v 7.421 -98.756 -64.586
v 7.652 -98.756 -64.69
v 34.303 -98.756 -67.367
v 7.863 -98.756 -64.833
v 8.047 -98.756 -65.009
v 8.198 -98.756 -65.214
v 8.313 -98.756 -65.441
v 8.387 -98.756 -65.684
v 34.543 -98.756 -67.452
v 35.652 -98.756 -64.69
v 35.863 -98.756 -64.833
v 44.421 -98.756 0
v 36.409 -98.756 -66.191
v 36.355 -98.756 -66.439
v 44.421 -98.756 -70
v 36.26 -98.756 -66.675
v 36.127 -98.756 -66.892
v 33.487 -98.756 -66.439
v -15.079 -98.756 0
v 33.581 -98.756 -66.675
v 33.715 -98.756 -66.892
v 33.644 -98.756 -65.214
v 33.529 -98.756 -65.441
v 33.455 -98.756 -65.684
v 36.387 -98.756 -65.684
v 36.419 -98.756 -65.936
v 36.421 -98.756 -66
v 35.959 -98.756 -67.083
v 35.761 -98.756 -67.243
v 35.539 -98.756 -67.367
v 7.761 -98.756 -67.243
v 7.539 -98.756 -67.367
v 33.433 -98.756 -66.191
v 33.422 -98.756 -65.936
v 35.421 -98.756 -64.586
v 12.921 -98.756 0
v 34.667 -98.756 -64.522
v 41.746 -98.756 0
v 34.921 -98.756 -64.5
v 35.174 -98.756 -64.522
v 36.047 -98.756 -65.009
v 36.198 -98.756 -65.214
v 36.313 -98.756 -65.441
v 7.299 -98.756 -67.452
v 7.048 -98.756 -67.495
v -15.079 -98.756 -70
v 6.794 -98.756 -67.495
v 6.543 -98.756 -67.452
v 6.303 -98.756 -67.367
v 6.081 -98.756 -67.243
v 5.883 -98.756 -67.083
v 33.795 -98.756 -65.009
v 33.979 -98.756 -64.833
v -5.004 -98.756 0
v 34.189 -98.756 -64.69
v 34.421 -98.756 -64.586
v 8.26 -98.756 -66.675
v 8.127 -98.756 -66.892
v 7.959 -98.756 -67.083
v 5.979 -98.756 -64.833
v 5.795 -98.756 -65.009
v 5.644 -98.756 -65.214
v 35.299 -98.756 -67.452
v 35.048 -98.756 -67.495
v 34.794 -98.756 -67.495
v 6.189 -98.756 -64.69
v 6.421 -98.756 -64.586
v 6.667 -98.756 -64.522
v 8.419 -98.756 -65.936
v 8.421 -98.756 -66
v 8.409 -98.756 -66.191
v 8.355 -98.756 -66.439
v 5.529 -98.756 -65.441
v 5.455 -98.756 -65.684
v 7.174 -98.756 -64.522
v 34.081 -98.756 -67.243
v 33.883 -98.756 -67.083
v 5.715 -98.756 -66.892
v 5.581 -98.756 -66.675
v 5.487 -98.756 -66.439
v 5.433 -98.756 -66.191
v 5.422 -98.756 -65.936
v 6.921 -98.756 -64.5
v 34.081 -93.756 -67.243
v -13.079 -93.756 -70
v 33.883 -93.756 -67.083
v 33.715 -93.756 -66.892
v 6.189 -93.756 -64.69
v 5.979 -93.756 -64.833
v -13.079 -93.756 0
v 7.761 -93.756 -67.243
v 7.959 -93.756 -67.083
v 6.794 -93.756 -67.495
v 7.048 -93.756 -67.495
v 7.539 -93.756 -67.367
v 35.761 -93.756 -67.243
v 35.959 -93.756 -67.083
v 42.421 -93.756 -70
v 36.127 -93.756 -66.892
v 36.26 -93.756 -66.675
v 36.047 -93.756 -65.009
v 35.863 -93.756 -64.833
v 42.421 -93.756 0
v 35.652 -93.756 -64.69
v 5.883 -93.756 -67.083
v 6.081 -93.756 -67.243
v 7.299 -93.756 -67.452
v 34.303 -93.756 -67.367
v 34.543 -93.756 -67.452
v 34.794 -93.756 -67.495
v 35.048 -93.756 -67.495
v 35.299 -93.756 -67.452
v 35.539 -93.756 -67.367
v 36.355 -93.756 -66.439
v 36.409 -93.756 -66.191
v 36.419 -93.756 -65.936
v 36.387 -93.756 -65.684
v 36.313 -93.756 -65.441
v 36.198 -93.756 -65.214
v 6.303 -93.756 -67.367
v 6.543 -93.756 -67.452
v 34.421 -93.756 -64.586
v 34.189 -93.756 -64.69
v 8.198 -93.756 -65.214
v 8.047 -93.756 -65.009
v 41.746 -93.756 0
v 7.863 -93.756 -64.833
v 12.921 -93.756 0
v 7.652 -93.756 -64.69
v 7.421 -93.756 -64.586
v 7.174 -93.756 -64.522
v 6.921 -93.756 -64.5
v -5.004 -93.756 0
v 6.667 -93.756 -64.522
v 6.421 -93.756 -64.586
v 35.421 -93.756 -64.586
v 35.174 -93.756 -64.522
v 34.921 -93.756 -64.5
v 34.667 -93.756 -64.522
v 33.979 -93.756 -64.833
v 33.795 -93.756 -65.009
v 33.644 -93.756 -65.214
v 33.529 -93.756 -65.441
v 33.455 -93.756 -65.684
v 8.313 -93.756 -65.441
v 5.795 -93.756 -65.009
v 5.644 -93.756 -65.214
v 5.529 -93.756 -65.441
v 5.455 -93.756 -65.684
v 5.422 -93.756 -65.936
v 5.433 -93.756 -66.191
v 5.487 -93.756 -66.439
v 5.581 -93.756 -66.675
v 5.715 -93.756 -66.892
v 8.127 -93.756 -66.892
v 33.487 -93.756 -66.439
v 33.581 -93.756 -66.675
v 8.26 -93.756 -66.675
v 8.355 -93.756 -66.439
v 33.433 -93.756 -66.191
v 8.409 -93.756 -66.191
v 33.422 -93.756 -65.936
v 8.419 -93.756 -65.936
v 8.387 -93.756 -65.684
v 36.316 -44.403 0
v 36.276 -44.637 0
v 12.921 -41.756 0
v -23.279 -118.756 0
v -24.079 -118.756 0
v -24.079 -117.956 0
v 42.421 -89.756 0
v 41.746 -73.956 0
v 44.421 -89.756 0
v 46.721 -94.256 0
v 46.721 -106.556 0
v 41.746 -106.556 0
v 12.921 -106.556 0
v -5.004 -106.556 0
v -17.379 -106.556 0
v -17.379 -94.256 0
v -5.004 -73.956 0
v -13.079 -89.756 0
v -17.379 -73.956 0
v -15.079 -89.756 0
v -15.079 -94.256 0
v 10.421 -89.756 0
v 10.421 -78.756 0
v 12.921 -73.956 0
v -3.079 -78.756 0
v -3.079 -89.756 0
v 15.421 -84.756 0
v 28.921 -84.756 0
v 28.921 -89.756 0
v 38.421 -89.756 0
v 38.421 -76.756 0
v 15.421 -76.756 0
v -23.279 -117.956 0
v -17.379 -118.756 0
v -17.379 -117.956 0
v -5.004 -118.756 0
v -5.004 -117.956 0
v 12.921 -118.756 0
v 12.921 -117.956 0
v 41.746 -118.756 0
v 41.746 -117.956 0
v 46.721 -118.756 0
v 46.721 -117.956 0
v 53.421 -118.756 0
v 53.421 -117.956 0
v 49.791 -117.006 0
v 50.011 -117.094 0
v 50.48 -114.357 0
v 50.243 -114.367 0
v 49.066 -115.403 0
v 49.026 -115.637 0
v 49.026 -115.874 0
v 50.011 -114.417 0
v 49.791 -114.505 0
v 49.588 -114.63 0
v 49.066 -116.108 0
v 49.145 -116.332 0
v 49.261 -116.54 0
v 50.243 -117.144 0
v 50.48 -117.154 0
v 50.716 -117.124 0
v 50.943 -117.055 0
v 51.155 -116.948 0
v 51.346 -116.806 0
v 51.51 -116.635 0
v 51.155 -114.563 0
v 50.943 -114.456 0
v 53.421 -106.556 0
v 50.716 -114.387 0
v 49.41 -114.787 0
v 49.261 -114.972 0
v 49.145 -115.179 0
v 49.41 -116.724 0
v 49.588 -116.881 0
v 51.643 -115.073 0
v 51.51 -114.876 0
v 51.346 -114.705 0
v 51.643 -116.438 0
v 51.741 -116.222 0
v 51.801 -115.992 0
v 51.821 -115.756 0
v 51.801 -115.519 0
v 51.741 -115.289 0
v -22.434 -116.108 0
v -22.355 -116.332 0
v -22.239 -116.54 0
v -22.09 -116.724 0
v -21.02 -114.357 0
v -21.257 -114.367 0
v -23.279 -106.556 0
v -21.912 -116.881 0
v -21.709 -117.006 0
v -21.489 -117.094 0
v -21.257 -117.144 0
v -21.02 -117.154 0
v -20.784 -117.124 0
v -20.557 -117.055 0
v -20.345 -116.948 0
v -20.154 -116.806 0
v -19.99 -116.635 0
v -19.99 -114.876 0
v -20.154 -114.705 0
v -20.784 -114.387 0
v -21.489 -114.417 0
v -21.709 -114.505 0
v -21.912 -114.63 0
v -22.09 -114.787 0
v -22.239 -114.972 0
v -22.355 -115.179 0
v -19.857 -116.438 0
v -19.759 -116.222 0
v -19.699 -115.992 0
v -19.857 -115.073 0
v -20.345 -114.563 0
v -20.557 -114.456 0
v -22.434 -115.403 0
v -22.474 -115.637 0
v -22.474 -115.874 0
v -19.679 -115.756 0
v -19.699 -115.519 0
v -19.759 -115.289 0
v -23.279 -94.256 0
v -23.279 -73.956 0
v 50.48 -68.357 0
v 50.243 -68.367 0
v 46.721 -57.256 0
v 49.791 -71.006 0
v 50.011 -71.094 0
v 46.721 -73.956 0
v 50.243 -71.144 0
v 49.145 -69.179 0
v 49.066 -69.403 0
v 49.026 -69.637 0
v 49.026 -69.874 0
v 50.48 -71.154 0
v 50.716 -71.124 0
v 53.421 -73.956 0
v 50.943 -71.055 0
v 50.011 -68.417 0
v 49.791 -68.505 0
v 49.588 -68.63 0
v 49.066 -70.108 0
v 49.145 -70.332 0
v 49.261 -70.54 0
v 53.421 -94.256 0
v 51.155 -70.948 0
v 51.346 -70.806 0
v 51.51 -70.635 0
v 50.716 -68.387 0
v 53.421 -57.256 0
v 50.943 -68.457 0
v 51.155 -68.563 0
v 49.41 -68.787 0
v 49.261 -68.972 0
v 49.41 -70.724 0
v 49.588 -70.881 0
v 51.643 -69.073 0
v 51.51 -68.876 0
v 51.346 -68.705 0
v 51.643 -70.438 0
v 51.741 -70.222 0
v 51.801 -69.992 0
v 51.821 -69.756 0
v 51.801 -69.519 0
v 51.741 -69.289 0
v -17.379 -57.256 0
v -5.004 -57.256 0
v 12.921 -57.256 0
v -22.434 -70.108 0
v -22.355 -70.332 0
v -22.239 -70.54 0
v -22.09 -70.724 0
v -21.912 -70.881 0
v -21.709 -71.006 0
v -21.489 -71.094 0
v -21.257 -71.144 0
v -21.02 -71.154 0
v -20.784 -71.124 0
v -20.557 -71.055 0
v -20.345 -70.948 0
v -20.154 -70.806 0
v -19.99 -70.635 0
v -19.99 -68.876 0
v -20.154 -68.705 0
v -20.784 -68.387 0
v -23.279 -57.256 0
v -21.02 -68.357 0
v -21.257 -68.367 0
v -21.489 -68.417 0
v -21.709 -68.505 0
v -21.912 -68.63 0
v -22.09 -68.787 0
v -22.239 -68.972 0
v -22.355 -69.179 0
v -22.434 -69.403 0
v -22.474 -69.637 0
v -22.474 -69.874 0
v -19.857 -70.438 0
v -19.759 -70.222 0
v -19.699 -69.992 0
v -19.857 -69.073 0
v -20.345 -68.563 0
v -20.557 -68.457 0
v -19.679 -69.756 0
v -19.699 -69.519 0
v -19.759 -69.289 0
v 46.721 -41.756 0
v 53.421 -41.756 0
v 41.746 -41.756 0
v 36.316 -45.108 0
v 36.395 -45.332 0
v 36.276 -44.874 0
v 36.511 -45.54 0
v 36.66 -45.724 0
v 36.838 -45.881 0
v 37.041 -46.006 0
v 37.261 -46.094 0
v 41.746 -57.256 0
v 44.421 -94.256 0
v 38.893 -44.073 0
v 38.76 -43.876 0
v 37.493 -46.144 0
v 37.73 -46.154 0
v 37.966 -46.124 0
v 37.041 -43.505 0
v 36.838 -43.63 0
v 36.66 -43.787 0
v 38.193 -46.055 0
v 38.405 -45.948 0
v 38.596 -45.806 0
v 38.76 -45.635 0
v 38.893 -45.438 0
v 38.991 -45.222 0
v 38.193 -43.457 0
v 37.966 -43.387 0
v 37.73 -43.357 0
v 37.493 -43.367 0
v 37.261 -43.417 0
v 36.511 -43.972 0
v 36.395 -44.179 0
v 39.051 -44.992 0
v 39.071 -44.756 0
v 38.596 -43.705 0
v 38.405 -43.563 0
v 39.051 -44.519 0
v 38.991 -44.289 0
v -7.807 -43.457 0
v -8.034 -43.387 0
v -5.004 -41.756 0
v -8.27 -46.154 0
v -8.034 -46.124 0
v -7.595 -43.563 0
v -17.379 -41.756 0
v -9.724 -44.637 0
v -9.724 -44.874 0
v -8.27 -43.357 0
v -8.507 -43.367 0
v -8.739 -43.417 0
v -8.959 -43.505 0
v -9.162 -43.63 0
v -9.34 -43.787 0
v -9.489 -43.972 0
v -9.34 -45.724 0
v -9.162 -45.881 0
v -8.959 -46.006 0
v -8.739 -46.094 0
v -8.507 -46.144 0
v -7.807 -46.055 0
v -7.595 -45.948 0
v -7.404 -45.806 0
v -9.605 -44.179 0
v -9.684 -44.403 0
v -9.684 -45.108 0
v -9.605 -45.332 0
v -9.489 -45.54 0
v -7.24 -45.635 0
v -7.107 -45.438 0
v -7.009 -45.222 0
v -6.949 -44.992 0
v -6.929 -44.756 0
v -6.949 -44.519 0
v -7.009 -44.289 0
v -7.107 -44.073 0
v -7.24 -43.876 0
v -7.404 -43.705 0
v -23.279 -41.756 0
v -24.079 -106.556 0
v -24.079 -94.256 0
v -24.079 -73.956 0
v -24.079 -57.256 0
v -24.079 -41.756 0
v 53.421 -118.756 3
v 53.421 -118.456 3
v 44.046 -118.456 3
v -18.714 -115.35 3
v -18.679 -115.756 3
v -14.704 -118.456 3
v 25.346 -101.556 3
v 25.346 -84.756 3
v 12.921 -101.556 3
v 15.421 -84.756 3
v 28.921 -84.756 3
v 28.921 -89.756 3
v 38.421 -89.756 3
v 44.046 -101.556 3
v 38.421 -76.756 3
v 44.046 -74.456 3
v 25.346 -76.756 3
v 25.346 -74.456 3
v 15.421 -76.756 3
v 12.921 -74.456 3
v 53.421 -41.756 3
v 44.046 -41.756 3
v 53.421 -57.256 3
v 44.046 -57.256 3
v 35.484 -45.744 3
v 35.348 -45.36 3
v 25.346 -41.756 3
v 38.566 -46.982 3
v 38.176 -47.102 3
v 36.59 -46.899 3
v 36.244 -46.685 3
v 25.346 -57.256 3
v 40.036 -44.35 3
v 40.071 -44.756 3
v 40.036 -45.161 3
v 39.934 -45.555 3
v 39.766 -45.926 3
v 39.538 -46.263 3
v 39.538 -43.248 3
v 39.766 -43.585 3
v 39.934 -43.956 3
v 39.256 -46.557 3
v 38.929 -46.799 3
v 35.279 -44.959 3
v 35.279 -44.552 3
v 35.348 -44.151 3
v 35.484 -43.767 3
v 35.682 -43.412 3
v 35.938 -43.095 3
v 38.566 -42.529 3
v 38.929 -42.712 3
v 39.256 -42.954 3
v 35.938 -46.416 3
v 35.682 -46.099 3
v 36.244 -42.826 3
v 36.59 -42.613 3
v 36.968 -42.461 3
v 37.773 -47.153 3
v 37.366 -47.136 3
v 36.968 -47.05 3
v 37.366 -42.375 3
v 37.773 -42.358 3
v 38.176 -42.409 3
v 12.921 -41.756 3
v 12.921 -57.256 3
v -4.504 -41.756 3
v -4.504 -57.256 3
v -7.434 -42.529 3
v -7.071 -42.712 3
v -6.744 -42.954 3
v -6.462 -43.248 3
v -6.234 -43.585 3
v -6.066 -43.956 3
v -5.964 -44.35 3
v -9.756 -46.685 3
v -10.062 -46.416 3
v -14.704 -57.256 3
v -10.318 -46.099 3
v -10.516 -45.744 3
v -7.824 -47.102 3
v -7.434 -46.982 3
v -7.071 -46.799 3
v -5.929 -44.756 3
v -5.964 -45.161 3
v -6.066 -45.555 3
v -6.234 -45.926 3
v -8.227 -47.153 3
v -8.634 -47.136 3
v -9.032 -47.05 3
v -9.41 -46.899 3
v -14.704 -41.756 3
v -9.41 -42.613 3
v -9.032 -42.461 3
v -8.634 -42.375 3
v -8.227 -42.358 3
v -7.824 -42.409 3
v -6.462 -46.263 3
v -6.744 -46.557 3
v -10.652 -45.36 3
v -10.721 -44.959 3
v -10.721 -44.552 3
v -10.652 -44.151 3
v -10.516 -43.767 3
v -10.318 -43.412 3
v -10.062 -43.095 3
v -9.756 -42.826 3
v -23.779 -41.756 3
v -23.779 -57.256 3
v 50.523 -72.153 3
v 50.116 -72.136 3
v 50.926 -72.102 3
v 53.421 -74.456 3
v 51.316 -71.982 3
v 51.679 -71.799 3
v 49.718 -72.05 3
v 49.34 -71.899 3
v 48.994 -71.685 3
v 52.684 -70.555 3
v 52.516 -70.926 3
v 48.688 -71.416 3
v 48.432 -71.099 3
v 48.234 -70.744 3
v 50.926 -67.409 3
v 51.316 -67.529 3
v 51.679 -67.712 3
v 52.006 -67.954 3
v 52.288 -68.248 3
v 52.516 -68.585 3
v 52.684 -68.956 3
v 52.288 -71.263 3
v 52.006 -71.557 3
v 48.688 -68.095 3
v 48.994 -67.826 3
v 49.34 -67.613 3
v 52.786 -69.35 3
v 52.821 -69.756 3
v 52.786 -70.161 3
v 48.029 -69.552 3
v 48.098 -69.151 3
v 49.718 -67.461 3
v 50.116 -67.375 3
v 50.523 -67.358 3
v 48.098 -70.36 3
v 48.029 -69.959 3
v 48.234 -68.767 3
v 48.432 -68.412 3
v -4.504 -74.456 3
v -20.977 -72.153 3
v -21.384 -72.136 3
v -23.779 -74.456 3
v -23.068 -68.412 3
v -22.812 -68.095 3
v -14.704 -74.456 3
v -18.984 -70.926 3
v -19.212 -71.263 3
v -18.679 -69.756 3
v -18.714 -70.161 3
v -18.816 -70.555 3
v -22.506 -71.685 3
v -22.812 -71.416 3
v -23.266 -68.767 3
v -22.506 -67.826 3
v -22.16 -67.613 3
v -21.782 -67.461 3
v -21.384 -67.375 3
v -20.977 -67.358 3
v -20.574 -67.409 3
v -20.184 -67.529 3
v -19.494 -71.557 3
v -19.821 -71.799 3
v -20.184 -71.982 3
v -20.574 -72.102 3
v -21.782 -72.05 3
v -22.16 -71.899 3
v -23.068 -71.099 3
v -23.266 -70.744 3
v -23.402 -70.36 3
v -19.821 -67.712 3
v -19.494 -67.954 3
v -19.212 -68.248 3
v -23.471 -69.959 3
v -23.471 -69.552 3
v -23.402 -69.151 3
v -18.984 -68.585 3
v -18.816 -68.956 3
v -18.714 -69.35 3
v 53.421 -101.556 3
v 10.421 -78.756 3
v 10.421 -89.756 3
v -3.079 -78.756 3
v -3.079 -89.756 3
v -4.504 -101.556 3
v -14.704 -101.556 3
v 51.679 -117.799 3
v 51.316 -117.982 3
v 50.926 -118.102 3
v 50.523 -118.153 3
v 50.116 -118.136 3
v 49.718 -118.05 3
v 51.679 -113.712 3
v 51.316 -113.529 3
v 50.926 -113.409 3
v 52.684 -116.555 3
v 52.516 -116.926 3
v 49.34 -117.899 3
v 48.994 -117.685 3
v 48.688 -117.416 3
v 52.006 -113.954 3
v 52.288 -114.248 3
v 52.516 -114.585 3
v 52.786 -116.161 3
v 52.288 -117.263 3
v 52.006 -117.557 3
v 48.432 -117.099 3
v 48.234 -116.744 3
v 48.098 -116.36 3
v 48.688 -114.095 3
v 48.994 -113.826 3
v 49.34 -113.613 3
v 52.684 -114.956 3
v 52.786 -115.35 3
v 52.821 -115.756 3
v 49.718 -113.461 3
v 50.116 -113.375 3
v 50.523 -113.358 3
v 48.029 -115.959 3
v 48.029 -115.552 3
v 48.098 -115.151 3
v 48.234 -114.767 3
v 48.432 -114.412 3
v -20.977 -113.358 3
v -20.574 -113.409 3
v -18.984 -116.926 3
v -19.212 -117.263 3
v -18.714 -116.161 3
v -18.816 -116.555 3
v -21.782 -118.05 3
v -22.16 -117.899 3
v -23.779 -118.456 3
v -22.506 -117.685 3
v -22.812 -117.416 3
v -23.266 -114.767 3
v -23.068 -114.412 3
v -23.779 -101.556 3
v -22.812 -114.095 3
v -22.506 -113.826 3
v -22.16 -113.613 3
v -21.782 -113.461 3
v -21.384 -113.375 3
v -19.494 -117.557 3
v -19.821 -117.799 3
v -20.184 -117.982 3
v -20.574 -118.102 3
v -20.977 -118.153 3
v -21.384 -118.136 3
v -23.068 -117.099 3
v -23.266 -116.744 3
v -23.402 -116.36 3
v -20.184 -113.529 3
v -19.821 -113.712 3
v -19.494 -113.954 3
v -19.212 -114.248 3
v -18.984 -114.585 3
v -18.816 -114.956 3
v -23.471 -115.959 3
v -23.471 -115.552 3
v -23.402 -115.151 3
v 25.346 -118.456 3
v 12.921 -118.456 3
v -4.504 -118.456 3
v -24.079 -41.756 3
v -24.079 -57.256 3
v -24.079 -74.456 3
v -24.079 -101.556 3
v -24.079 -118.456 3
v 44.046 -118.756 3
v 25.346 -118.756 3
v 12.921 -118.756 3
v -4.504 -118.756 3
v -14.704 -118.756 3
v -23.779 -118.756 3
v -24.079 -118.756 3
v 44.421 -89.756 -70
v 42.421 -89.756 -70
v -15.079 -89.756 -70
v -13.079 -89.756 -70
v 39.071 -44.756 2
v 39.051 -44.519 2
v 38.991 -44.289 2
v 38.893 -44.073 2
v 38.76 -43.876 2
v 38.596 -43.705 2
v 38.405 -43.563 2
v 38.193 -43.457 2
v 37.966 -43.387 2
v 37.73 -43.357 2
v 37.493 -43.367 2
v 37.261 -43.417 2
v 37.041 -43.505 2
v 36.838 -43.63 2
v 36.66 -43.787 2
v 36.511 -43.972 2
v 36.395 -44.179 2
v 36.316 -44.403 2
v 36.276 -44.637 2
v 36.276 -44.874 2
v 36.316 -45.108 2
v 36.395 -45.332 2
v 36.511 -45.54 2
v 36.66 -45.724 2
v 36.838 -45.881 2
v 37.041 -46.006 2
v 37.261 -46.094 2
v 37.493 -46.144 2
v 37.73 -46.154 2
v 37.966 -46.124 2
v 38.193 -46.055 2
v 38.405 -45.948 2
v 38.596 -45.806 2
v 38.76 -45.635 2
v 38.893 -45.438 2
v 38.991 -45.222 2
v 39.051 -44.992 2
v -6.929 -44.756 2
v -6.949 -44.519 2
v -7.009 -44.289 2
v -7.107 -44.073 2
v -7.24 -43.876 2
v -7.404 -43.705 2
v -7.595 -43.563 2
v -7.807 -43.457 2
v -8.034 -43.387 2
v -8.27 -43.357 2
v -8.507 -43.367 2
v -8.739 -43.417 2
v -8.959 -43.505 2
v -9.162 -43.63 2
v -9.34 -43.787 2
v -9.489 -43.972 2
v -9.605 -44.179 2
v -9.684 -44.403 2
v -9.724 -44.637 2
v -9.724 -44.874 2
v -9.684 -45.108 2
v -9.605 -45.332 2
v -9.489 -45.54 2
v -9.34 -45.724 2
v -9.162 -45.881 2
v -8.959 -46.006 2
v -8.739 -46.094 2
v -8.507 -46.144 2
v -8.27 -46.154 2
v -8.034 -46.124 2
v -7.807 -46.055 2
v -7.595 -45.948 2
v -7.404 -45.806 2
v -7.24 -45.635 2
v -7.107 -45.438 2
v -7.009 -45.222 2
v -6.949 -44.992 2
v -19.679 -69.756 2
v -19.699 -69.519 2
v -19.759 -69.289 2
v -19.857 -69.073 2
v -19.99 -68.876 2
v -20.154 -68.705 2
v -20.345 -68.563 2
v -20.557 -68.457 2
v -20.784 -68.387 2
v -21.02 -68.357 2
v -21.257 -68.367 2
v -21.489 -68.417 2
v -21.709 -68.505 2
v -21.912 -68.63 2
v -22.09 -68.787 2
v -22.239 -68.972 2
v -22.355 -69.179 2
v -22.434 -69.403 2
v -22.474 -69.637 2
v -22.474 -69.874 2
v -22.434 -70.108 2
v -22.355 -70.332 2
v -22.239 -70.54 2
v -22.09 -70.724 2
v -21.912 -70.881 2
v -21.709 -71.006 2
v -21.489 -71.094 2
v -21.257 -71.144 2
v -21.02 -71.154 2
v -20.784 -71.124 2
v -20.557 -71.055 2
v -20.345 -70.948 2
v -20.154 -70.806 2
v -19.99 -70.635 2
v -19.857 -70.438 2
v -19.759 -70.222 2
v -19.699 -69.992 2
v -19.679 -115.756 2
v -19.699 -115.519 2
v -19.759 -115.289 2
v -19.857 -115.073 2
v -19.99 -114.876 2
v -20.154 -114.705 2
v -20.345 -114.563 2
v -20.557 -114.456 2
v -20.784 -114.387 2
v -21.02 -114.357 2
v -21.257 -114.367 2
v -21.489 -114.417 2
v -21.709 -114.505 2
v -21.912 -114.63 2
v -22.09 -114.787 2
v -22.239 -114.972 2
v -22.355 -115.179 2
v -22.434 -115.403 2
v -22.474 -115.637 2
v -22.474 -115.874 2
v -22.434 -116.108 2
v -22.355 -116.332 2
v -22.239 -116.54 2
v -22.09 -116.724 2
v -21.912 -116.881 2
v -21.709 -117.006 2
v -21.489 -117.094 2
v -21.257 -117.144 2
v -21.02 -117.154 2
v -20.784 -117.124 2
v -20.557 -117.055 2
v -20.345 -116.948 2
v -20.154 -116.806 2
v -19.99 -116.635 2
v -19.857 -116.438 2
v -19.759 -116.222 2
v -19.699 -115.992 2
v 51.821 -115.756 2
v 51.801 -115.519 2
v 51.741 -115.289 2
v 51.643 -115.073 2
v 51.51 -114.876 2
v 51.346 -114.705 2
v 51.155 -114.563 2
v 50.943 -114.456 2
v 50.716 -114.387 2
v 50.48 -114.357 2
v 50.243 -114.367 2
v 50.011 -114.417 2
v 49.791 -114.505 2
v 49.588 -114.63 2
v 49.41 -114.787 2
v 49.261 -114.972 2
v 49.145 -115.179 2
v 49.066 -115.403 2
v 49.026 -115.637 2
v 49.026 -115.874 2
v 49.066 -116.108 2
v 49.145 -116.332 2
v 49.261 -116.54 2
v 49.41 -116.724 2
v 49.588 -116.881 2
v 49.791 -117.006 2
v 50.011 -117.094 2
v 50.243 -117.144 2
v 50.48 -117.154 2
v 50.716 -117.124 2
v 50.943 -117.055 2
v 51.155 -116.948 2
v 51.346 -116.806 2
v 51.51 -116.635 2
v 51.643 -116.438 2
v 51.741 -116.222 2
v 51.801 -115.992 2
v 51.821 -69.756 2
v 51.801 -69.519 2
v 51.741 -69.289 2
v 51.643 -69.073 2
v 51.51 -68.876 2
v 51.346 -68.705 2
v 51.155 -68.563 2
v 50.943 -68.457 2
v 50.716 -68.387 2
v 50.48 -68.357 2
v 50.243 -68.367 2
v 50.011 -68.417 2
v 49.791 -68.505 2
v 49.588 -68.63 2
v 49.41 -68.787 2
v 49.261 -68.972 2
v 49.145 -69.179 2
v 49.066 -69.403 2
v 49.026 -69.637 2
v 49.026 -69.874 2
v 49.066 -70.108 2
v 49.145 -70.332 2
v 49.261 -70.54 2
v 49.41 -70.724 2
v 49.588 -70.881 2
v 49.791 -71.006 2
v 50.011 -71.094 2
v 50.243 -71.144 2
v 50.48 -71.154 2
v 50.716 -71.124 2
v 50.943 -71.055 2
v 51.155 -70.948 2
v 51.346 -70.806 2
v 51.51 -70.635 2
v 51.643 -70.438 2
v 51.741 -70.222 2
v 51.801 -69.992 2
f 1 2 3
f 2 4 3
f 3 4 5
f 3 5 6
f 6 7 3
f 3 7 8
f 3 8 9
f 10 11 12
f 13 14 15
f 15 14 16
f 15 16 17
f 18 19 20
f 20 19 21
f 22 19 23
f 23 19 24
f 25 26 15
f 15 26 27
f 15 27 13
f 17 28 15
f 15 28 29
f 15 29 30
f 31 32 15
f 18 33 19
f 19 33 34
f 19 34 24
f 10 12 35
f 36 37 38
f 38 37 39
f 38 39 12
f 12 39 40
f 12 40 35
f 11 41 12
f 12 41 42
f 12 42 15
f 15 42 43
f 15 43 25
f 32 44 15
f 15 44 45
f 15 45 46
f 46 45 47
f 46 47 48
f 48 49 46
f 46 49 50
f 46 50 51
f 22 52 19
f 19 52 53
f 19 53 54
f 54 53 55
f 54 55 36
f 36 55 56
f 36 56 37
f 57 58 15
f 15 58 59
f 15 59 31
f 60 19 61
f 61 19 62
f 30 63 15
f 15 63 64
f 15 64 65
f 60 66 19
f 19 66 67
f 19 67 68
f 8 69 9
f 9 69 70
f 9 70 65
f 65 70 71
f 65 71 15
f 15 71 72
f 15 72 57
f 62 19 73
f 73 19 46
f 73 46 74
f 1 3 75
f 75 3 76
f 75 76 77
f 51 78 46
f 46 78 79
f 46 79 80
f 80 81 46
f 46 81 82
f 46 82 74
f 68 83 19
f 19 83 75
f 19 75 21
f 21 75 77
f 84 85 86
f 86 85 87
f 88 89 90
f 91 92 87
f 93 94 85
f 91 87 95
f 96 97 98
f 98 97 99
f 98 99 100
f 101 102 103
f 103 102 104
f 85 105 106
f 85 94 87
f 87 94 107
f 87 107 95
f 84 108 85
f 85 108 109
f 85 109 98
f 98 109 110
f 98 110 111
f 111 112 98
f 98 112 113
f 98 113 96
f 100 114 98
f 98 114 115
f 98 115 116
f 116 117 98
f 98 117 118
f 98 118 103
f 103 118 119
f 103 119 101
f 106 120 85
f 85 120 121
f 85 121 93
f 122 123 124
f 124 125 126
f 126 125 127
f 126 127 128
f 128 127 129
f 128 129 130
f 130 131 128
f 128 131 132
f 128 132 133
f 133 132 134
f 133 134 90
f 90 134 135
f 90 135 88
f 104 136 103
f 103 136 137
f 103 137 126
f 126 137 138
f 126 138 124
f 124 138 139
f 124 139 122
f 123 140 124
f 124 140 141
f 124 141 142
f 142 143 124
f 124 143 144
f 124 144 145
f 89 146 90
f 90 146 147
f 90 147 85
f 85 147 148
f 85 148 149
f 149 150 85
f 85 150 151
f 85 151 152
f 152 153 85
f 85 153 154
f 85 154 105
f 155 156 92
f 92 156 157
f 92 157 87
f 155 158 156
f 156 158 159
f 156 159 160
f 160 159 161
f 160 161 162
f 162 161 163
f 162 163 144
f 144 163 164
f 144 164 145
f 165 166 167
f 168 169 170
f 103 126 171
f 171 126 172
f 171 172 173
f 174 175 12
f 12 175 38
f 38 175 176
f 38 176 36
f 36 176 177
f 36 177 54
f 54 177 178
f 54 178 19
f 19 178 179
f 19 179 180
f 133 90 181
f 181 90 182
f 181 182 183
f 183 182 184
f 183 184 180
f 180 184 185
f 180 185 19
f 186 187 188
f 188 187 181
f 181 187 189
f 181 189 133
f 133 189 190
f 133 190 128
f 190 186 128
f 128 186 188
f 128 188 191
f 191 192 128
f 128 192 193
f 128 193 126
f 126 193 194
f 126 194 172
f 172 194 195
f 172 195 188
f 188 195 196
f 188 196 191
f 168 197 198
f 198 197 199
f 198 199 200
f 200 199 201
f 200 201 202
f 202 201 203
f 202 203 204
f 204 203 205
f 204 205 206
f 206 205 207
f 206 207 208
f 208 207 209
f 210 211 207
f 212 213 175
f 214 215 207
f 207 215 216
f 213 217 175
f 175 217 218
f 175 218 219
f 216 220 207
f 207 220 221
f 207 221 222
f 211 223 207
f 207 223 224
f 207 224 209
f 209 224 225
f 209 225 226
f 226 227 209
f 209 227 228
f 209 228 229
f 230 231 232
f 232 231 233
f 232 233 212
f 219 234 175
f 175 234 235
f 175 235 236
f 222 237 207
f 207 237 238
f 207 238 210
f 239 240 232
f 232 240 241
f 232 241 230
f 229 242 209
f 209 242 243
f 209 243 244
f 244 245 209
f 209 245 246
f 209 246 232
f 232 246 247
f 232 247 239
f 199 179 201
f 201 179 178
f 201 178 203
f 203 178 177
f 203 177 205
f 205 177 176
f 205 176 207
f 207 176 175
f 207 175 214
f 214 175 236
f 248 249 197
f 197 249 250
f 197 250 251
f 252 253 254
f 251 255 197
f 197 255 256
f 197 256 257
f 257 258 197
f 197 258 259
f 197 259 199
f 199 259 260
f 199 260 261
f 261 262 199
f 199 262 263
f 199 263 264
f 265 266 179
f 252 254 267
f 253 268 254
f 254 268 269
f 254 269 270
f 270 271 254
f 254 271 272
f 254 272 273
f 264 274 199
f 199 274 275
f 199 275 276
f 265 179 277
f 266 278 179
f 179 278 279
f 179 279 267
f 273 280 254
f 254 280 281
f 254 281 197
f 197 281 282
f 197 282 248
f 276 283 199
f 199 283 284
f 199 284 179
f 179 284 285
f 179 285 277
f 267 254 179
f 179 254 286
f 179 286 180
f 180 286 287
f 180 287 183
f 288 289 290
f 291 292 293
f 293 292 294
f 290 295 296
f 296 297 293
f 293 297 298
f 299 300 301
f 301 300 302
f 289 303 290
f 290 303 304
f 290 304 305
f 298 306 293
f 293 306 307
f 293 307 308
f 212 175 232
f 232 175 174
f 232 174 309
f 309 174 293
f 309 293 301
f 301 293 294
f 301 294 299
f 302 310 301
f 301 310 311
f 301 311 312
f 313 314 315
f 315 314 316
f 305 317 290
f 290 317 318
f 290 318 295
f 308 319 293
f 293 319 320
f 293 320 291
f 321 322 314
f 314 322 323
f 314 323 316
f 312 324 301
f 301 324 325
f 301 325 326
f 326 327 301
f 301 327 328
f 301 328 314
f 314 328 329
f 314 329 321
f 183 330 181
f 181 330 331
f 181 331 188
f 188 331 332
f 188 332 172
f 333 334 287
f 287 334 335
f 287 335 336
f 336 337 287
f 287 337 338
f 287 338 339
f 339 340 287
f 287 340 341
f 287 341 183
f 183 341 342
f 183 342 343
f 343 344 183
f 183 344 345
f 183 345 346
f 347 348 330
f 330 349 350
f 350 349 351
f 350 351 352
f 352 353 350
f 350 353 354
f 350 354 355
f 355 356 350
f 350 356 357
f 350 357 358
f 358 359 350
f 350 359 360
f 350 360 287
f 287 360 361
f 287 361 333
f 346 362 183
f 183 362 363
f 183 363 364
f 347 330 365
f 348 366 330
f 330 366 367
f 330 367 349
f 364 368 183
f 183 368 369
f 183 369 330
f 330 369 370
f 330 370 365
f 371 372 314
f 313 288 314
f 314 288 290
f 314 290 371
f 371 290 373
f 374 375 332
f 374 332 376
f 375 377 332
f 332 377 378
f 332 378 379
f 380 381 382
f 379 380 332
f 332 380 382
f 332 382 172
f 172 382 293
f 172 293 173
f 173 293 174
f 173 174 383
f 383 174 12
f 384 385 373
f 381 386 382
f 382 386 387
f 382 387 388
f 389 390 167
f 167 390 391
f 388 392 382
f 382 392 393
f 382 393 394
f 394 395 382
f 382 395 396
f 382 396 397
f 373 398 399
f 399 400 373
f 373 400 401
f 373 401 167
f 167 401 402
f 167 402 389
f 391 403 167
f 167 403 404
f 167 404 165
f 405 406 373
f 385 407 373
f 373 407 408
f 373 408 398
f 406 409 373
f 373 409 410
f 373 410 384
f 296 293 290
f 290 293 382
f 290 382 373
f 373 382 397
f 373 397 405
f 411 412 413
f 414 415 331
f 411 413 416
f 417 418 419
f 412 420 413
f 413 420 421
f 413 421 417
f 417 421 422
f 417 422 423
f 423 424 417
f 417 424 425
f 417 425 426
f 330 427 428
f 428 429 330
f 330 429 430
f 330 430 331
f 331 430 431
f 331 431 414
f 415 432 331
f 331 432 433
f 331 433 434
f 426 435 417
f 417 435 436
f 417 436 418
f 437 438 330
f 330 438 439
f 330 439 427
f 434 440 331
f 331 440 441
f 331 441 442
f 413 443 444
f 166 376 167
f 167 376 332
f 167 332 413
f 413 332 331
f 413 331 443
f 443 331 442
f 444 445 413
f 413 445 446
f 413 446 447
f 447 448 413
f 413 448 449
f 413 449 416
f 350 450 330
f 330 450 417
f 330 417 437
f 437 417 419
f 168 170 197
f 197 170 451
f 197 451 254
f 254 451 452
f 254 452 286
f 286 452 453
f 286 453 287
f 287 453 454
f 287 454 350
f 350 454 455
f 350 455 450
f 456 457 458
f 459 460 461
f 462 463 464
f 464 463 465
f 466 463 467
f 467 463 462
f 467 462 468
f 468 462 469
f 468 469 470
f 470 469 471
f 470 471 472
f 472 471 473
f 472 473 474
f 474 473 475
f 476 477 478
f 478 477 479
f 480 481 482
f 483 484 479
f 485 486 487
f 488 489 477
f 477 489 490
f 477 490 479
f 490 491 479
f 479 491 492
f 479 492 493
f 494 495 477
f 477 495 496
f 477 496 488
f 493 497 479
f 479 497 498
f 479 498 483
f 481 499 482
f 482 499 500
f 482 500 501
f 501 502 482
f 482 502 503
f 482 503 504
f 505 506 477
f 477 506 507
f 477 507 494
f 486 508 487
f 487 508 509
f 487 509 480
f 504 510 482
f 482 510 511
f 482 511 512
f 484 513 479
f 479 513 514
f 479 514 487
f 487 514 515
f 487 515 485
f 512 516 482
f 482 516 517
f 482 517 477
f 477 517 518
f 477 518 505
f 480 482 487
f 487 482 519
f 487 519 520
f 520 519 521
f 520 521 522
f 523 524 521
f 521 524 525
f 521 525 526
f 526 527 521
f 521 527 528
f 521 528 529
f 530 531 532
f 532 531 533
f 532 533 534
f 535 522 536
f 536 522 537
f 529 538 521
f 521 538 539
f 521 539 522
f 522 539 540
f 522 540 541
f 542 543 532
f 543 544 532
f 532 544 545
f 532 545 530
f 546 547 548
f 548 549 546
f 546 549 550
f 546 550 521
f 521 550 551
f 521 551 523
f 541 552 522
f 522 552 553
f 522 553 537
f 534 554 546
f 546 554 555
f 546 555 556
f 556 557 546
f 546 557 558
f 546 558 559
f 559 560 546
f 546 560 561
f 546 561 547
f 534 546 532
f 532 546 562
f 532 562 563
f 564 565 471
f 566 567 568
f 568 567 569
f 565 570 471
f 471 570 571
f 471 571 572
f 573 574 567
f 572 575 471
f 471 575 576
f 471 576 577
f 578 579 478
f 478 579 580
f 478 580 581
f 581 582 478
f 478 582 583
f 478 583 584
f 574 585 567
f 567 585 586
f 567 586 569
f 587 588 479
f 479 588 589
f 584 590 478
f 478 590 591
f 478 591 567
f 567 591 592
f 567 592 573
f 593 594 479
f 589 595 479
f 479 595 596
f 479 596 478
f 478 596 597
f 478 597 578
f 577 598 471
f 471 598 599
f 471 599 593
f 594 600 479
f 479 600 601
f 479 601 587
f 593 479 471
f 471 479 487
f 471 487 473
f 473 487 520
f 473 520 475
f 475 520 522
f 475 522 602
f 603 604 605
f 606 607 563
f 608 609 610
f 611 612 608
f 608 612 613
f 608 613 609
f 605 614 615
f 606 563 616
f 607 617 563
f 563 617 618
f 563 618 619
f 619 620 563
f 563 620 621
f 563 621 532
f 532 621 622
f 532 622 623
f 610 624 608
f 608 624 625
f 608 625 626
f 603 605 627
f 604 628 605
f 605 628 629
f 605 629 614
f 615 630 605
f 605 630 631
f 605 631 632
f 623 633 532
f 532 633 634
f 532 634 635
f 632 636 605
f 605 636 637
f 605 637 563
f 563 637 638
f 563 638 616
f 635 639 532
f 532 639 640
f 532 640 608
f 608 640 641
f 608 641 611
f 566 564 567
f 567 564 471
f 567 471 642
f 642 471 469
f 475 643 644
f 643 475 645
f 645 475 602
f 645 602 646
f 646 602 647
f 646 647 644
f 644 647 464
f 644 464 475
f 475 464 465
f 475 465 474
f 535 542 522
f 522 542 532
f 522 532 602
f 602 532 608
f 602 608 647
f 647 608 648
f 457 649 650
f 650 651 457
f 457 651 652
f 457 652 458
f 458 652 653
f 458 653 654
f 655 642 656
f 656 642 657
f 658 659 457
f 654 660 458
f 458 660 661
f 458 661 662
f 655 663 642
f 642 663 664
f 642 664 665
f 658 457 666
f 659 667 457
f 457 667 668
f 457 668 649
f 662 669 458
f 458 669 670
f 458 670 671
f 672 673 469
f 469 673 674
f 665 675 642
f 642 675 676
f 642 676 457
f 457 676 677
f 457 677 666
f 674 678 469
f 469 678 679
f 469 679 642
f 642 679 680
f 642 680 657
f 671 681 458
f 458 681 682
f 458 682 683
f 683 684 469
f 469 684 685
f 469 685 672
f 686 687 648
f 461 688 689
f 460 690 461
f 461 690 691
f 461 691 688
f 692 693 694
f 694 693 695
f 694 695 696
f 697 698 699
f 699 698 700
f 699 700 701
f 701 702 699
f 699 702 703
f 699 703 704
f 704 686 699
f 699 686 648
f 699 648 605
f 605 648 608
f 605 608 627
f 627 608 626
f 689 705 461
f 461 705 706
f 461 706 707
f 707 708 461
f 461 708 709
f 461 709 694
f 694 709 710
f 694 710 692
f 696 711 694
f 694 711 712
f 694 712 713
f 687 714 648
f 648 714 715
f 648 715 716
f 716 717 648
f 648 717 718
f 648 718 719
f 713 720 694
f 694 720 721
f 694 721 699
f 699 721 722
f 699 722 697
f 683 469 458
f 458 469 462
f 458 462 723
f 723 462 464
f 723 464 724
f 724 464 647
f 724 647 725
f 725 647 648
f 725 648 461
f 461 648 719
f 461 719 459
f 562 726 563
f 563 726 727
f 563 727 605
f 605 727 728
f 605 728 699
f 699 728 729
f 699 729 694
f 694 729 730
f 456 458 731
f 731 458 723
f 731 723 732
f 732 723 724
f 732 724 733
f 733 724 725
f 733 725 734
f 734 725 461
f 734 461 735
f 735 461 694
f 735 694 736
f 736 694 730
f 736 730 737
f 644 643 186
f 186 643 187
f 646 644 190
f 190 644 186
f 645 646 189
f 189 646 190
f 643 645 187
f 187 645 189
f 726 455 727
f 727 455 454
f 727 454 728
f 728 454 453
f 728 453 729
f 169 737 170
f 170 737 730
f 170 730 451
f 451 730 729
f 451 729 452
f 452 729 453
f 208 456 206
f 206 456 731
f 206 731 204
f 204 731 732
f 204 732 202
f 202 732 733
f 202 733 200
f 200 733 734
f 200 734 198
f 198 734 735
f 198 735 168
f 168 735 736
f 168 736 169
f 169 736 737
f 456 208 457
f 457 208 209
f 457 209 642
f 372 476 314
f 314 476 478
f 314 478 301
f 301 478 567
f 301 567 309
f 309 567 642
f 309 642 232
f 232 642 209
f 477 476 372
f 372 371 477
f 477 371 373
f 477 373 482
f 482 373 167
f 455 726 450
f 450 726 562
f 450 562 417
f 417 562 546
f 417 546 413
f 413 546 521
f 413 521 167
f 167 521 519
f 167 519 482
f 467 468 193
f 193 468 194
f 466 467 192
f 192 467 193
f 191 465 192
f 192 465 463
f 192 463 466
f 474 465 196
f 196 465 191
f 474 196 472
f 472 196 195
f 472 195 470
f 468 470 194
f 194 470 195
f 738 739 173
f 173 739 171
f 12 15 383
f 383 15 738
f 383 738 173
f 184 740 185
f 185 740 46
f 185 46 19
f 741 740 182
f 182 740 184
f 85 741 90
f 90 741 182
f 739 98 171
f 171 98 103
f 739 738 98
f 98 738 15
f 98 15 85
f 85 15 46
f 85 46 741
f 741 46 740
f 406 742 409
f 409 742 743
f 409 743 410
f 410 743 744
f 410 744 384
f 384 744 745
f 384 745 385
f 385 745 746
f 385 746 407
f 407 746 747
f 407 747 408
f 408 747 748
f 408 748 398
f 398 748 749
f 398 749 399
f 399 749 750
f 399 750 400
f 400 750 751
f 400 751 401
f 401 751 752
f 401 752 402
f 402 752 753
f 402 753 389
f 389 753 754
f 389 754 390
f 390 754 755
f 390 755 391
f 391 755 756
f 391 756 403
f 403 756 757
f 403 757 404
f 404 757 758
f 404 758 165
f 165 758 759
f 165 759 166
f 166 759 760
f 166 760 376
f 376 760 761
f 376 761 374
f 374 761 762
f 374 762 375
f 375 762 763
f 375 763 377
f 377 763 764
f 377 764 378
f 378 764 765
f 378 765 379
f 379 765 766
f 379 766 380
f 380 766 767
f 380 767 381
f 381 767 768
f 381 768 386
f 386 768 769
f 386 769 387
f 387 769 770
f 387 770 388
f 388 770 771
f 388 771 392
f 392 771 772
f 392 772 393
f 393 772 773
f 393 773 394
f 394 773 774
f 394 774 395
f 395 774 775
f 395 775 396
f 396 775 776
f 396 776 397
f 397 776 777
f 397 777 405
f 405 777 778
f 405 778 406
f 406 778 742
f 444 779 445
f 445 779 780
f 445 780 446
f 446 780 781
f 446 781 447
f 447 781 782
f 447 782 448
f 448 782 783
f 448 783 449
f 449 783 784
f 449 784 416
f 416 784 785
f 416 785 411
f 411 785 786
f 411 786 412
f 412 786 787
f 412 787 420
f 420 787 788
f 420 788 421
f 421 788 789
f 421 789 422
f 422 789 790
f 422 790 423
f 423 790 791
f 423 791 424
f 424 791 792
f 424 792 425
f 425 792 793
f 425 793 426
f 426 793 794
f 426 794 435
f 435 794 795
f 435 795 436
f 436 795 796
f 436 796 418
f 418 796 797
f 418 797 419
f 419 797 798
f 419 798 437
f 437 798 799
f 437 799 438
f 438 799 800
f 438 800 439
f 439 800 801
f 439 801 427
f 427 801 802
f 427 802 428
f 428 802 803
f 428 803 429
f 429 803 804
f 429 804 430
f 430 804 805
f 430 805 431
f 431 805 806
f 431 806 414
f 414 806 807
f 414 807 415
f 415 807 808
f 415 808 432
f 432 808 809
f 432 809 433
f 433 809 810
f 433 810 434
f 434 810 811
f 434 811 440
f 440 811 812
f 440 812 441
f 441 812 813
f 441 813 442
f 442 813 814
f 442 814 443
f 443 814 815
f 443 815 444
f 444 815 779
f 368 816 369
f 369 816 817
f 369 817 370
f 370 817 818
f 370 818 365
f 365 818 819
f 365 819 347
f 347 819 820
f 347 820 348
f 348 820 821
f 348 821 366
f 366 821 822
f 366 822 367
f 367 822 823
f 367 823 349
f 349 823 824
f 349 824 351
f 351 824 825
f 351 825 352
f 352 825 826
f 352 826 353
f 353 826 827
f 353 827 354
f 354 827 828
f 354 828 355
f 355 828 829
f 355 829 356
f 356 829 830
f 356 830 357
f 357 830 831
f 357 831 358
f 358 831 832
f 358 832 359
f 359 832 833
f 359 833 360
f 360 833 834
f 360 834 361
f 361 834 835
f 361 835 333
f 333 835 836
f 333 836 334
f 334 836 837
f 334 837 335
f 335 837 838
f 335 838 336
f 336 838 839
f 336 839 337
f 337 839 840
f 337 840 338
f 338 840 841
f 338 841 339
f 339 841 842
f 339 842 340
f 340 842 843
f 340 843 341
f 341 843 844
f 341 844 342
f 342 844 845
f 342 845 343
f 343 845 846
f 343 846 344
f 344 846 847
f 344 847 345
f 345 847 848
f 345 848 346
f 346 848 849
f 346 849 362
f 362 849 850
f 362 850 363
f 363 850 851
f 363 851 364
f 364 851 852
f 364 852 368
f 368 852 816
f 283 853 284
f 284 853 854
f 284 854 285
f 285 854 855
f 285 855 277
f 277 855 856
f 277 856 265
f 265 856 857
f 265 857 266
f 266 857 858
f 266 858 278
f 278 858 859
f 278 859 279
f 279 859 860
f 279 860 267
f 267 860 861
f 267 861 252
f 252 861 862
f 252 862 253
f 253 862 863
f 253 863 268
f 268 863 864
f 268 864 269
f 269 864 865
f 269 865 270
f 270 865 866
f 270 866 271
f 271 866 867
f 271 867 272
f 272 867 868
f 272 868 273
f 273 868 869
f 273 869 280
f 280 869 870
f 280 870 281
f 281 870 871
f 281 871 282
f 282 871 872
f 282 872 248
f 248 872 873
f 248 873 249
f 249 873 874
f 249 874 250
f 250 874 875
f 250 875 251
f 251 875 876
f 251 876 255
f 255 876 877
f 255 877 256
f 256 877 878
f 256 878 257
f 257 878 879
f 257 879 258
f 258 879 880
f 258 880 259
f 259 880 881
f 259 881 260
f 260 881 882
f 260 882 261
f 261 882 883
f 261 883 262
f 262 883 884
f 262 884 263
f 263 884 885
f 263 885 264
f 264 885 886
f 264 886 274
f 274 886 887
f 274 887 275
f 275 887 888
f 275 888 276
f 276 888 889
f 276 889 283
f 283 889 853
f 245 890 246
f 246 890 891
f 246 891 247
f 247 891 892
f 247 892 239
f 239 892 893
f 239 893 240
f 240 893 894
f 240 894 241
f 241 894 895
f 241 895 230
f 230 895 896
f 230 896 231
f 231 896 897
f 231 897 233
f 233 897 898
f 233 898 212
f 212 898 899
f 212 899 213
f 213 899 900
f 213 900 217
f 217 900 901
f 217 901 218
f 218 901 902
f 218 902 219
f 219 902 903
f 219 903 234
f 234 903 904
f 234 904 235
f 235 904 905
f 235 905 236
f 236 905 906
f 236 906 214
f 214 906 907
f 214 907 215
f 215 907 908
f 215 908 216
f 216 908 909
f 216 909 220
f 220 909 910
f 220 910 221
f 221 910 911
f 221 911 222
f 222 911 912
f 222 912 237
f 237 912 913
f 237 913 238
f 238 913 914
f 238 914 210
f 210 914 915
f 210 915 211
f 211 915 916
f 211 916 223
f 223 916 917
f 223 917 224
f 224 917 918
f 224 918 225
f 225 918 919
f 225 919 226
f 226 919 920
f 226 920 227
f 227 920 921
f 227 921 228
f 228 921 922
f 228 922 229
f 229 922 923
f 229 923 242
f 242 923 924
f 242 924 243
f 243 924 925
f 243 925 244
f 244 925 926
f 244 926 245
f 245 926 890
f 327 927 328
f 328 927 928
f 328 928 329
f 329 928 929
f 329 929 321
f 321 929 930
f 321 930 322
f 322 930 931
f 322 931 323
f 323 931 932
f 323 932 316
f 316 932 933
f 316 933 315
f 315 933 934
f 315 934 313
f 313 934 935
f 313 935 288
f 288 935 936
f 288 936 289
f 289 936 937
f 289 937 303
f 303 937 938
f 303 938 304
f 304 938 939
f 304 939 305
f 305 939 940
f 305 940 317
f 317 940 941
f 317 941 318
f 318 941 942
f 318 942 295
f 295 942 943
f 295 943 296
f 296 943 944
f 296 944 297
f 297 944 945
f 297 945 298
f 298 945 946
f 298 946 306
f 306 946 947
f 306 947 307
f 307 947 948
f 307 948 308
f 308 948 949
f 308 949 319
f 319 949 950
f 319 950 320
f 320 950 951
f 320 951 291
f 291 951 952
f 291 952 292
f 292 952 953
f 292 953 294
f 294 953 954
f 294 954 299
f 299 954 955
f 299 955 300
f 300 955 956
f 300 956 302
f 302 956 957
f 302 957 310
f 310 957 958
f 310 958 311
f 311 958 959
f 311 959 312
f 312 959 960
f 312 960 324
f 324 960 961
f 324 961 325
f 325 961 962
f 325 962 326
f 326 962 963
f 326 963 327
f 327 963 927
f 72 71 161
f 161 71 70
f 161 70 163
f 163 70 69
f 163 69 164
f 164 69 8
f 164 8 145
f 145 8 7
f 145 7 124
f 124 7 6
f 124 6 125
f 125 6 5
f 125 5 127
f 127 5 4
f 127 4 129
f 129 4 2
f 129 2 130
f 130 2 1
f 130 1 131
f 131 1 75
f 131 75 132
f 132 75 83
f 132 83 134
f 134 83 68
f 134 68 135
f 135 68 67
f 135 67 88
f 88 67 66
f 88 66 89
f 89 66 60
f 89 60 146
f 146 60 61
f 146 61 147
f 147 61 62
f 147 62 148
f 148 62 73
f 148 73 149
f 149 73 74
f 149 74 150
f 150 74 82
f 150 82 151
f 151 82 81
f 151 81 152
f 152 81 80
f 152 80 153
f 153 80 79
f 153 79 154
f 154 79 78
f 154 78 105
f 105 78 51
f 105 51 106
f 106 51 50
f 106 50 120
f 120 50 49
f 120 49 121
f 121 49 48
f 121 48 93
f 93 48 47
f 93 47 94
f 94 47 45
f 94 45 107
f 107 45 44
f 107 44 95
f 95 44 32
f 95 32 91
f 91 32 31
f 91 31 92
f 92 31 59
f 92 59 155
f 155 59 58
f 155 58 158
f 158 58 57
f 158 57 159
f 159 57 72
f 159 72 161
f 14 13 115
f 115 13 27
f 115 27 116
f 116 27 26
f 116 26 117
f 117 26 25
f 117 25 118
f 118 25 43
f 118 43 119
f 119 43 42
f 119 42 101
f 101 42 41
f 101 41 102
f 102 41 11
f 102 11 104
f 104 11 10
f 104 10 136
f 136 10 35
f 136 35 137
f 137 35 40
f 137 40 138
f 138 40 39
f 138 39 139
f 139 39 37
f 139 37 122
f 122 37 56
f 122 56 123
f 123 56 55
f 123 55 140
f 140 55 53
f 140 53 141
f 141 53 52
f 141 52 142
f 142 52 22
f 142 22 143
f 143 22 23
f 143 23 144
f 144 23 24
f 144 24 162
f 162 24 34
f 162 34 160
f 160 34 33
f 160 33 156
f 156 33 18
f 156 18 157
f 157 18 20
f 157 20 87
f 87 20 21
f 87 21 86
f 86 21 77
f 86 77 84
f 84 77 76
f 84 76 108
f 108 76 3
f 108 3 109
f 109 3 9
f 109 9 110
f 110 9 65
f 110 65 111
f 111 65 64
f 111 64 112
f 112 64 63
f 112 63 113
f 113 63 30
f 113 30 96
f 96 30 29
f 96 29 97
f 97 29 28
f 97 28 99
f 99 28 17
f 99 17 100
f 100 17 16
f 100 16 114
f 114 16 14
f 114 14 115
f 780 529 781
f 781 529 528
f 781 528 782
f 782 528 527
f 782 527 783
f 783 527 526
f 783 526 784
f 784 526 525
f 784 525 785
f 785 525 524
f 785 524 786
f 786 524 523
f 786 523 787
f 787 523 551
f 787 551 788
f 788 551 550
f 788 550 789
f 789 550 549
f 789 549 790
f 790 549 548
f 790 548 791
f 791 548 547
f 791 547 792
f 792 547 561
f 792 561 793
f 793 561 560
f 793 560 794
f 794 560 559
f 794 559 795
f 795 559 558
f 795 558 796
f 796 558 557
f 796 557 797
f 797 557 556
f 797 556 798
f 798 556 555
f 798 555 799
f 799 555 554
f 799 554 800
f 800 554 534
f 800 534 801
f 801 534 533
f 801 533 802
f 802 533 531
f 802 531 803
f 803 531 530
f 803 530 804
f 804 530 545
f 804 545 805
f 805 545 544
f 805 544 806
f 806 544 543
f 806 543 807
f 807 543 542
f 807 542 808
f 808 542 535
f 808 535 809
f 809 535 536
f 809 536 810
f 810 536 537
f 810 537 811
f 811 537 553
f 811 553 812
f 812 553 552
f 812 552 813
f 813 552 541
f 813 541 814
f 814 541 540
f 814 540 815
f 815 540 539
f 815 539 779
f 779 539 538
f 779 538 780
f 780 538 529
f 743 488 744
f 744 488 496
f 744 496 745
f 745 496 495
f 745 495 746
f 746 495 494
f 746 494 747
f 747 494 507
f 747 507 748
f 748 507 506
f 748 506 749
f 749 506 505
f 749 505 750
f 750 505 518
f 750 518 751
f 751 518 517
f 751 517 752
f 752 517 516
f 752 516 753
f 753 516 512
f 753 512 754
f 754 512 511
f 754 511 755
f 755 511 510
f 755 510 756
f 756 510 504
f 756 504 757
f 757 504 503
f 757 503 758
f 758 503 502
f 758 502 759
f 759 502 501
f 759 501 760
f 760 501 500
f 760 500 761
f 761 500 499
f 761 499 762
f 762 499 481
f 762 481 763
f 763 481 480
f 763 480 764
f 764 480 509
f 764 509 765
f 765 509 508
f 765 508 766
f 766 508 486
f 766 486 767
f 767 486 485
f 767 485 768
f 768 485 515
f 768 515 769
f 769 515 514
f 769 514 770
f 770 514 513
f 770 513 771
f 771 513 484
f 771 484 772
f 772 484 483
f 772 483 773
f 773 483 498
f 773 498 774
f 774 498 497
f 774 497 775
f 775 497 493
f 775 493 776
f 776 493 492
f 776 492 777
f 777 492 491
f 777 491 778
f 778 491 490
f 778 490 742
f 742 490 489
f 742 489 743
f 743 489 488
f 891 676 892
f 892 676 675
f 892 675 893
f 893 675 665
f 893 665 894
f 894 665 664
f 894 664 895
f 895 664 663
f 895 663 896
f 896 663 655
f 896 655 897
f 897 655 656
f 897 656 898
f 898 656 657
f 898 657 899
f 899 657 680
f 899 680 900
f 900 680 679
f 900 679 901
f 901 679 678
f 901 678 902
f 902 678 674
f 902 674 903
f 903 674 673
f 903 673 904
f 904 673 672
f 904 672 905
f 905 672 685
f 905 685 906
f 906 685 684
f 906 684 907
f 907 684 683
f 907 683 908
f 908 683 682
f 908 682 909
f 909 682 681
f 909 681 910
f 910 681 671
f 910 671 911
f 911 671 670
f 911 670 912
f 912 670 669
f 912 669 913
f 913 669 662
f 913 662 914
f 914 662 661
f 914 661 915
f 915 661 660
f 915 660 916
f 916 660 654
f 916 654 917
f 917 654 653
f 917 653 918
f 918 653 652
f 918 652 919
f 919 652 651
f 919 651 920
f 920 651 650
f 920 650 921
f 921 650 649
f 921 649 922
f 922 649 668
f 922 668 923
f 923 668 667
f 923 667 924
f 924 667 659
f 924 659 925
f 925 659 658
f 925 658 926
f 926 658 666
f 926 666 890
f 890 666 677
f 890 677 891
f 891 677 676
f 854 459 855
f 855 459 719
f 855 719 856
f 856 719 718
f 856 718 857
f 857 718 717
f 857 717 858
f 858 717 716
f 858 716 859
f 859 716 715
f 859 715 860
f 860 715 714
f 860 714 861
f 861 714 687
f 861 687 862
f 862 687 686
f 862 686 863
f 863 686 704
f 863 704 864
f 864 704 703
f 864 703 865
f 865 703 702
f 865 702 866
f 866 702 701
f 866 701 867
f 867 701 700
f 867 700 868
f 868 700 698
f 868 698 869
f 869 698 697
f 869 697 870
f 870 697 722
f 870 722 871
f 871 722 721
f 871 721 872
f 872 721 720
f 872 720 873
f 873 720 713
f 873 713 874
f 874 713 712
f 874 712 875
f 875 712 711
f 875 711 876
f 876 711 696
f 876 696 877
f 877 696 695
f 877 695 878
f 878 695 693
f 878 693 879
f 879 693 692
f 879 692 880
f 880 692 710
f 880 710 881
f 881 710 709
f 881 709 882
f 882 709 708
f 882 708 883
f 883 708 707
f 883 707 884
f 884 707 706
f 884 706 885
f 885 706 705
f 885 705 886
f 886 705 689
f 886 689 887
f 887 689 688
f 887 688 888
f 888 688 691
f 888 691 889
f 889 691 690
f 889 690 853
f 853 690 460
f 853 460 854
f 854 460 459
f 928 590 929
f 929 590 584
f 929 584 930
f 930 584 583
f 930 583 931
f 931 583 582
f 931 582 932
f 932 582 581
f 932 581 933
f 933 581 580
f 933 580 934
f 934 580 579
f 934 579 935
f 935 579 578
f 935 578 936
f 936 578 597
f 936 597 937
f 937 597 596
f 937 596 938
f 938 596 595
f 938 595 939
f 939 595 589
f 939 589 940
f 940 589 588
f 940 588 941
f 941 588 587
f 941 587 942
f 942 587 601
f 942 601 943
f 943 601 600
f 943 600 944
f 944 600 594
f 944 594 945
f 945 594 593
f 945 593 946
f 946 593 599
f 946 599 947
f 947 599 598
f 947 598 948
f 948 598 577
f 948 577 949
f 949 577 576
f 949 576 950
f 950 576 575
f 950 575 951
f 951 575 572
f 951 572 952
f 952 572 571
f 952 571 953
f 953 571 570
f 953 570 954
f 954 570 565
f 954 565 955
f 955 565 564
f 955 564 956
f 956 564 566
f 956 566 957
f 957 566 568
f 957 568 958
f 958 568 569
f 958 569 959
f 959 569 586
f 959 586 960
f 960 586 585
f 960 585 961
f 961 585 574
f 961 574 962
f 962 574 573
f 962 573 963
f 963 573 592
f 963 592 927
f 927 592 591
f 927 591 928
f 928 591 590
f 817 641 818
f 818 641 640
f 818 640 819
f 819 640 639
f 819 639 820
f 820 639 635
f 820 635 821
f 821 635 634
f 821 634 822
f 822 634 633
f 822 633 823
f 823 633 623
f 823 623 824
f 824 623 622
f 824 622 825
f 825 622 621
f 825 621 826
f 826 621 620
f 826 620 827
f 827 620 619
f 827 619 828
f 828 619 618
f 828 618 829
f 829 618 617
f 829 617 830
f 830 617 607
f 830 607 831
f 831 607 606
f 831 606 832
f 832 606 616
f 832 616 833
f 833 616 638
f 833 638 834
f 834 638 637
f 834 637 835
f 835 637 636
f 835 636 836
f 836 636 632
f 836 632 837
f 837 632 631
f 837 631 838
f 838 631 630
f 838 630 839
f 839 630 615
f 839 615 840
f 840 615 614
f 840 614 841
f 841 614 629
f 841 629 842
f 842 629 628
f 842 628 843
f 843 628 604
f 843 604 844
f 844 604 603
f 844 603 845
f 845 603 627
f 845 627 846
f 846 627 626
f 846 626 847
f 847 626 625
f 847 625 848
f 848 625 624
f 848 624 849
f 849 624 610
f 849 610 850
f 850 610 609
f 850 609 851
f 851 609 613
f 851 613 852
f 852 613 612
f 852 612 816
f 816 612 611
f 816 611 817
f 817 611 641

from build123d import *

# Parameters (mm, degrees)
SZKIC1_W                    = 77.5
SZKIC1_H                    = 77
SZKIC1_W_2                  = 13.5
SZKIC1_H_2                  = 11
DODANIE_WYCI_GNI_CIE1_DEPTH = 3
DODANIE_WYCI_GNI_CIE3_DEPTH = 70
SZKIC2_R                    = 1.4
WYTNIJ_WYCI_GNI_CIE1_DEPTH  = 3
SZKIC4_R                    = 1.4
WYTNIJ_WYCI_GNI_CIE2_DEPTH  = 3
SZKIC5_R                    = 1.5
WYTNIJ_WYCI_GNI_CIE3_DEPTH  = 5
SFAZOWANIE1_SIZE            = 1
SFAZOWANIE2_SIZE            = 1
SFAZOWANIE3_SIZE            = 1


with BuildPart() as part:
    # Szkic1 → Dodanie-wyciągnięcie1 (new body)
    with BuildSketch(Plane.XY):
        with Locations((14.670842187, -80.255543912)):
            Rectangle(SZKIC1_W, SZKIC1_H)
        with Locations((3.670842187, -84.255543912)):
            Rectangle(SZKIC1_W_2, SZKIC1_H_2, mode=Mode.SUBTRACT)
        Polygon((15.420842187, -76.755543912), (38.420842187, -76.755543912), (38.420842187, -89.755543912), (28.920842187, -89.755543912), (28.920842187, -84.755543912), (15.420842187, -84.755543912), align=None, mode=Mode.SUBTRACT)
    extrude(amount=DODANIE_WYCI_GNI_CIE1_DEPTH)

    # Szkic1<5> → Dodanie-wyciągnięcie3 (add)
    with BuildSketch(Plane.XY):
        Polygon((42.420842187, -89.755543912), (44.420842187, -89.755543912), (44.420842187, -98.755543912), (-15.079157813, -98.755543912), (-15.079157813, -89.755543912), (-13.079157813, -89.755543912), (-13.079157813, -93.755543912), (42.420842187, -93.755543912), align=None)
    extrude(amount=-DODANIE_WYCI_GNI_CIE3_DEPTH)

    # Szkic2 → Wytnij-wyciągnięcie1 (cut)
    with BuildSketch(Plane.XY.offset(3)):
        with Locations((-8.329157813, -44.755543912)):
            Circle(SZKIC2_R)
        with Locations((37.670842187, -44.755543912)):
            Circle(SZKIC2_R)
    extrude(amount=-WYTNIJ_WYCI_GNI_CIE1_DEPTH, mode=Mode.SUBTRACT)

    # Szkic4 → Wytnij-wyciągnięcie2 (cut)
    with BuildSketch(Plane.XY.offset(3)):
        with Locations((-21.079157813, -69.755543912)):
            Circle(SZKIC4_R)
        with Locations((-21.079157813, -115.755543912)):
            Circle(SZKIC4_R)
        with Locations((50.420842187, -115.755543912)):
            Circle(SZKIC4_R)
        with Locations((50.420842187, -69.755543912)):
            Circle(SZKIC4_R)
    extrude(amount=-WYTNIJ_WYCI_GNI_CIE2_DEPTH, mode=Mode.SUBTRACT)

    # Szkic5 → Wytnij-wyciągnięcie3 (cut)
    with BuildSketch(Plane(origin=(0, -93.755543912, 0), x_dir=(1, 0, 0), z_dir=(0, 1, 0))):
        with Locations(Location((34.920842187, 66, 0), (0, 0, 270))):
            Circle(SZKIC5_R)
        with Locations(Location((6.920842187, 66, 0), (0, 0, 270))):
            Circle(SZKIC5_R)
    extrude(amount=-WYTNIJ_WYCI_GNI_CIE3_DEPTH, mode=Mode.SUBTRACT)

    # Sfazowanie1
    sfazowanie1_edges = [part.edges().sort_by_distance(p)[0] for p in [
        (-9.729157813, -44.755543912, 3),
    ]]
    chamfer(sfazowanie1_edges, length=SFAZOWANIE1_SIZE)

    # Sfazowanie2
    sfazowanie2_edges = [part.edges().sort_by_distance(p)[0] for p in [
        (36.270842187, -44.755543912, 3),
    ]]
    chamfer(sfazowanie2_edges, length=SFAZOWANIE2_SIZE)

    # Sfazowanie3
    sfazowanie3_edges = [part.edges().sort_by_distance(p)[0] for p in [
        (49.020842187, -69.755543912, 3),
        (49.020842187, -115.755543912, 3),
        (-22.479157813, -115.755543912, 3),
        (-22.479157813, -69.755543912, 3),
    ]]
    chamfer(sfazowanie3_edges, length=SFAZOWANIE3_SIZE)


solid = part.part
